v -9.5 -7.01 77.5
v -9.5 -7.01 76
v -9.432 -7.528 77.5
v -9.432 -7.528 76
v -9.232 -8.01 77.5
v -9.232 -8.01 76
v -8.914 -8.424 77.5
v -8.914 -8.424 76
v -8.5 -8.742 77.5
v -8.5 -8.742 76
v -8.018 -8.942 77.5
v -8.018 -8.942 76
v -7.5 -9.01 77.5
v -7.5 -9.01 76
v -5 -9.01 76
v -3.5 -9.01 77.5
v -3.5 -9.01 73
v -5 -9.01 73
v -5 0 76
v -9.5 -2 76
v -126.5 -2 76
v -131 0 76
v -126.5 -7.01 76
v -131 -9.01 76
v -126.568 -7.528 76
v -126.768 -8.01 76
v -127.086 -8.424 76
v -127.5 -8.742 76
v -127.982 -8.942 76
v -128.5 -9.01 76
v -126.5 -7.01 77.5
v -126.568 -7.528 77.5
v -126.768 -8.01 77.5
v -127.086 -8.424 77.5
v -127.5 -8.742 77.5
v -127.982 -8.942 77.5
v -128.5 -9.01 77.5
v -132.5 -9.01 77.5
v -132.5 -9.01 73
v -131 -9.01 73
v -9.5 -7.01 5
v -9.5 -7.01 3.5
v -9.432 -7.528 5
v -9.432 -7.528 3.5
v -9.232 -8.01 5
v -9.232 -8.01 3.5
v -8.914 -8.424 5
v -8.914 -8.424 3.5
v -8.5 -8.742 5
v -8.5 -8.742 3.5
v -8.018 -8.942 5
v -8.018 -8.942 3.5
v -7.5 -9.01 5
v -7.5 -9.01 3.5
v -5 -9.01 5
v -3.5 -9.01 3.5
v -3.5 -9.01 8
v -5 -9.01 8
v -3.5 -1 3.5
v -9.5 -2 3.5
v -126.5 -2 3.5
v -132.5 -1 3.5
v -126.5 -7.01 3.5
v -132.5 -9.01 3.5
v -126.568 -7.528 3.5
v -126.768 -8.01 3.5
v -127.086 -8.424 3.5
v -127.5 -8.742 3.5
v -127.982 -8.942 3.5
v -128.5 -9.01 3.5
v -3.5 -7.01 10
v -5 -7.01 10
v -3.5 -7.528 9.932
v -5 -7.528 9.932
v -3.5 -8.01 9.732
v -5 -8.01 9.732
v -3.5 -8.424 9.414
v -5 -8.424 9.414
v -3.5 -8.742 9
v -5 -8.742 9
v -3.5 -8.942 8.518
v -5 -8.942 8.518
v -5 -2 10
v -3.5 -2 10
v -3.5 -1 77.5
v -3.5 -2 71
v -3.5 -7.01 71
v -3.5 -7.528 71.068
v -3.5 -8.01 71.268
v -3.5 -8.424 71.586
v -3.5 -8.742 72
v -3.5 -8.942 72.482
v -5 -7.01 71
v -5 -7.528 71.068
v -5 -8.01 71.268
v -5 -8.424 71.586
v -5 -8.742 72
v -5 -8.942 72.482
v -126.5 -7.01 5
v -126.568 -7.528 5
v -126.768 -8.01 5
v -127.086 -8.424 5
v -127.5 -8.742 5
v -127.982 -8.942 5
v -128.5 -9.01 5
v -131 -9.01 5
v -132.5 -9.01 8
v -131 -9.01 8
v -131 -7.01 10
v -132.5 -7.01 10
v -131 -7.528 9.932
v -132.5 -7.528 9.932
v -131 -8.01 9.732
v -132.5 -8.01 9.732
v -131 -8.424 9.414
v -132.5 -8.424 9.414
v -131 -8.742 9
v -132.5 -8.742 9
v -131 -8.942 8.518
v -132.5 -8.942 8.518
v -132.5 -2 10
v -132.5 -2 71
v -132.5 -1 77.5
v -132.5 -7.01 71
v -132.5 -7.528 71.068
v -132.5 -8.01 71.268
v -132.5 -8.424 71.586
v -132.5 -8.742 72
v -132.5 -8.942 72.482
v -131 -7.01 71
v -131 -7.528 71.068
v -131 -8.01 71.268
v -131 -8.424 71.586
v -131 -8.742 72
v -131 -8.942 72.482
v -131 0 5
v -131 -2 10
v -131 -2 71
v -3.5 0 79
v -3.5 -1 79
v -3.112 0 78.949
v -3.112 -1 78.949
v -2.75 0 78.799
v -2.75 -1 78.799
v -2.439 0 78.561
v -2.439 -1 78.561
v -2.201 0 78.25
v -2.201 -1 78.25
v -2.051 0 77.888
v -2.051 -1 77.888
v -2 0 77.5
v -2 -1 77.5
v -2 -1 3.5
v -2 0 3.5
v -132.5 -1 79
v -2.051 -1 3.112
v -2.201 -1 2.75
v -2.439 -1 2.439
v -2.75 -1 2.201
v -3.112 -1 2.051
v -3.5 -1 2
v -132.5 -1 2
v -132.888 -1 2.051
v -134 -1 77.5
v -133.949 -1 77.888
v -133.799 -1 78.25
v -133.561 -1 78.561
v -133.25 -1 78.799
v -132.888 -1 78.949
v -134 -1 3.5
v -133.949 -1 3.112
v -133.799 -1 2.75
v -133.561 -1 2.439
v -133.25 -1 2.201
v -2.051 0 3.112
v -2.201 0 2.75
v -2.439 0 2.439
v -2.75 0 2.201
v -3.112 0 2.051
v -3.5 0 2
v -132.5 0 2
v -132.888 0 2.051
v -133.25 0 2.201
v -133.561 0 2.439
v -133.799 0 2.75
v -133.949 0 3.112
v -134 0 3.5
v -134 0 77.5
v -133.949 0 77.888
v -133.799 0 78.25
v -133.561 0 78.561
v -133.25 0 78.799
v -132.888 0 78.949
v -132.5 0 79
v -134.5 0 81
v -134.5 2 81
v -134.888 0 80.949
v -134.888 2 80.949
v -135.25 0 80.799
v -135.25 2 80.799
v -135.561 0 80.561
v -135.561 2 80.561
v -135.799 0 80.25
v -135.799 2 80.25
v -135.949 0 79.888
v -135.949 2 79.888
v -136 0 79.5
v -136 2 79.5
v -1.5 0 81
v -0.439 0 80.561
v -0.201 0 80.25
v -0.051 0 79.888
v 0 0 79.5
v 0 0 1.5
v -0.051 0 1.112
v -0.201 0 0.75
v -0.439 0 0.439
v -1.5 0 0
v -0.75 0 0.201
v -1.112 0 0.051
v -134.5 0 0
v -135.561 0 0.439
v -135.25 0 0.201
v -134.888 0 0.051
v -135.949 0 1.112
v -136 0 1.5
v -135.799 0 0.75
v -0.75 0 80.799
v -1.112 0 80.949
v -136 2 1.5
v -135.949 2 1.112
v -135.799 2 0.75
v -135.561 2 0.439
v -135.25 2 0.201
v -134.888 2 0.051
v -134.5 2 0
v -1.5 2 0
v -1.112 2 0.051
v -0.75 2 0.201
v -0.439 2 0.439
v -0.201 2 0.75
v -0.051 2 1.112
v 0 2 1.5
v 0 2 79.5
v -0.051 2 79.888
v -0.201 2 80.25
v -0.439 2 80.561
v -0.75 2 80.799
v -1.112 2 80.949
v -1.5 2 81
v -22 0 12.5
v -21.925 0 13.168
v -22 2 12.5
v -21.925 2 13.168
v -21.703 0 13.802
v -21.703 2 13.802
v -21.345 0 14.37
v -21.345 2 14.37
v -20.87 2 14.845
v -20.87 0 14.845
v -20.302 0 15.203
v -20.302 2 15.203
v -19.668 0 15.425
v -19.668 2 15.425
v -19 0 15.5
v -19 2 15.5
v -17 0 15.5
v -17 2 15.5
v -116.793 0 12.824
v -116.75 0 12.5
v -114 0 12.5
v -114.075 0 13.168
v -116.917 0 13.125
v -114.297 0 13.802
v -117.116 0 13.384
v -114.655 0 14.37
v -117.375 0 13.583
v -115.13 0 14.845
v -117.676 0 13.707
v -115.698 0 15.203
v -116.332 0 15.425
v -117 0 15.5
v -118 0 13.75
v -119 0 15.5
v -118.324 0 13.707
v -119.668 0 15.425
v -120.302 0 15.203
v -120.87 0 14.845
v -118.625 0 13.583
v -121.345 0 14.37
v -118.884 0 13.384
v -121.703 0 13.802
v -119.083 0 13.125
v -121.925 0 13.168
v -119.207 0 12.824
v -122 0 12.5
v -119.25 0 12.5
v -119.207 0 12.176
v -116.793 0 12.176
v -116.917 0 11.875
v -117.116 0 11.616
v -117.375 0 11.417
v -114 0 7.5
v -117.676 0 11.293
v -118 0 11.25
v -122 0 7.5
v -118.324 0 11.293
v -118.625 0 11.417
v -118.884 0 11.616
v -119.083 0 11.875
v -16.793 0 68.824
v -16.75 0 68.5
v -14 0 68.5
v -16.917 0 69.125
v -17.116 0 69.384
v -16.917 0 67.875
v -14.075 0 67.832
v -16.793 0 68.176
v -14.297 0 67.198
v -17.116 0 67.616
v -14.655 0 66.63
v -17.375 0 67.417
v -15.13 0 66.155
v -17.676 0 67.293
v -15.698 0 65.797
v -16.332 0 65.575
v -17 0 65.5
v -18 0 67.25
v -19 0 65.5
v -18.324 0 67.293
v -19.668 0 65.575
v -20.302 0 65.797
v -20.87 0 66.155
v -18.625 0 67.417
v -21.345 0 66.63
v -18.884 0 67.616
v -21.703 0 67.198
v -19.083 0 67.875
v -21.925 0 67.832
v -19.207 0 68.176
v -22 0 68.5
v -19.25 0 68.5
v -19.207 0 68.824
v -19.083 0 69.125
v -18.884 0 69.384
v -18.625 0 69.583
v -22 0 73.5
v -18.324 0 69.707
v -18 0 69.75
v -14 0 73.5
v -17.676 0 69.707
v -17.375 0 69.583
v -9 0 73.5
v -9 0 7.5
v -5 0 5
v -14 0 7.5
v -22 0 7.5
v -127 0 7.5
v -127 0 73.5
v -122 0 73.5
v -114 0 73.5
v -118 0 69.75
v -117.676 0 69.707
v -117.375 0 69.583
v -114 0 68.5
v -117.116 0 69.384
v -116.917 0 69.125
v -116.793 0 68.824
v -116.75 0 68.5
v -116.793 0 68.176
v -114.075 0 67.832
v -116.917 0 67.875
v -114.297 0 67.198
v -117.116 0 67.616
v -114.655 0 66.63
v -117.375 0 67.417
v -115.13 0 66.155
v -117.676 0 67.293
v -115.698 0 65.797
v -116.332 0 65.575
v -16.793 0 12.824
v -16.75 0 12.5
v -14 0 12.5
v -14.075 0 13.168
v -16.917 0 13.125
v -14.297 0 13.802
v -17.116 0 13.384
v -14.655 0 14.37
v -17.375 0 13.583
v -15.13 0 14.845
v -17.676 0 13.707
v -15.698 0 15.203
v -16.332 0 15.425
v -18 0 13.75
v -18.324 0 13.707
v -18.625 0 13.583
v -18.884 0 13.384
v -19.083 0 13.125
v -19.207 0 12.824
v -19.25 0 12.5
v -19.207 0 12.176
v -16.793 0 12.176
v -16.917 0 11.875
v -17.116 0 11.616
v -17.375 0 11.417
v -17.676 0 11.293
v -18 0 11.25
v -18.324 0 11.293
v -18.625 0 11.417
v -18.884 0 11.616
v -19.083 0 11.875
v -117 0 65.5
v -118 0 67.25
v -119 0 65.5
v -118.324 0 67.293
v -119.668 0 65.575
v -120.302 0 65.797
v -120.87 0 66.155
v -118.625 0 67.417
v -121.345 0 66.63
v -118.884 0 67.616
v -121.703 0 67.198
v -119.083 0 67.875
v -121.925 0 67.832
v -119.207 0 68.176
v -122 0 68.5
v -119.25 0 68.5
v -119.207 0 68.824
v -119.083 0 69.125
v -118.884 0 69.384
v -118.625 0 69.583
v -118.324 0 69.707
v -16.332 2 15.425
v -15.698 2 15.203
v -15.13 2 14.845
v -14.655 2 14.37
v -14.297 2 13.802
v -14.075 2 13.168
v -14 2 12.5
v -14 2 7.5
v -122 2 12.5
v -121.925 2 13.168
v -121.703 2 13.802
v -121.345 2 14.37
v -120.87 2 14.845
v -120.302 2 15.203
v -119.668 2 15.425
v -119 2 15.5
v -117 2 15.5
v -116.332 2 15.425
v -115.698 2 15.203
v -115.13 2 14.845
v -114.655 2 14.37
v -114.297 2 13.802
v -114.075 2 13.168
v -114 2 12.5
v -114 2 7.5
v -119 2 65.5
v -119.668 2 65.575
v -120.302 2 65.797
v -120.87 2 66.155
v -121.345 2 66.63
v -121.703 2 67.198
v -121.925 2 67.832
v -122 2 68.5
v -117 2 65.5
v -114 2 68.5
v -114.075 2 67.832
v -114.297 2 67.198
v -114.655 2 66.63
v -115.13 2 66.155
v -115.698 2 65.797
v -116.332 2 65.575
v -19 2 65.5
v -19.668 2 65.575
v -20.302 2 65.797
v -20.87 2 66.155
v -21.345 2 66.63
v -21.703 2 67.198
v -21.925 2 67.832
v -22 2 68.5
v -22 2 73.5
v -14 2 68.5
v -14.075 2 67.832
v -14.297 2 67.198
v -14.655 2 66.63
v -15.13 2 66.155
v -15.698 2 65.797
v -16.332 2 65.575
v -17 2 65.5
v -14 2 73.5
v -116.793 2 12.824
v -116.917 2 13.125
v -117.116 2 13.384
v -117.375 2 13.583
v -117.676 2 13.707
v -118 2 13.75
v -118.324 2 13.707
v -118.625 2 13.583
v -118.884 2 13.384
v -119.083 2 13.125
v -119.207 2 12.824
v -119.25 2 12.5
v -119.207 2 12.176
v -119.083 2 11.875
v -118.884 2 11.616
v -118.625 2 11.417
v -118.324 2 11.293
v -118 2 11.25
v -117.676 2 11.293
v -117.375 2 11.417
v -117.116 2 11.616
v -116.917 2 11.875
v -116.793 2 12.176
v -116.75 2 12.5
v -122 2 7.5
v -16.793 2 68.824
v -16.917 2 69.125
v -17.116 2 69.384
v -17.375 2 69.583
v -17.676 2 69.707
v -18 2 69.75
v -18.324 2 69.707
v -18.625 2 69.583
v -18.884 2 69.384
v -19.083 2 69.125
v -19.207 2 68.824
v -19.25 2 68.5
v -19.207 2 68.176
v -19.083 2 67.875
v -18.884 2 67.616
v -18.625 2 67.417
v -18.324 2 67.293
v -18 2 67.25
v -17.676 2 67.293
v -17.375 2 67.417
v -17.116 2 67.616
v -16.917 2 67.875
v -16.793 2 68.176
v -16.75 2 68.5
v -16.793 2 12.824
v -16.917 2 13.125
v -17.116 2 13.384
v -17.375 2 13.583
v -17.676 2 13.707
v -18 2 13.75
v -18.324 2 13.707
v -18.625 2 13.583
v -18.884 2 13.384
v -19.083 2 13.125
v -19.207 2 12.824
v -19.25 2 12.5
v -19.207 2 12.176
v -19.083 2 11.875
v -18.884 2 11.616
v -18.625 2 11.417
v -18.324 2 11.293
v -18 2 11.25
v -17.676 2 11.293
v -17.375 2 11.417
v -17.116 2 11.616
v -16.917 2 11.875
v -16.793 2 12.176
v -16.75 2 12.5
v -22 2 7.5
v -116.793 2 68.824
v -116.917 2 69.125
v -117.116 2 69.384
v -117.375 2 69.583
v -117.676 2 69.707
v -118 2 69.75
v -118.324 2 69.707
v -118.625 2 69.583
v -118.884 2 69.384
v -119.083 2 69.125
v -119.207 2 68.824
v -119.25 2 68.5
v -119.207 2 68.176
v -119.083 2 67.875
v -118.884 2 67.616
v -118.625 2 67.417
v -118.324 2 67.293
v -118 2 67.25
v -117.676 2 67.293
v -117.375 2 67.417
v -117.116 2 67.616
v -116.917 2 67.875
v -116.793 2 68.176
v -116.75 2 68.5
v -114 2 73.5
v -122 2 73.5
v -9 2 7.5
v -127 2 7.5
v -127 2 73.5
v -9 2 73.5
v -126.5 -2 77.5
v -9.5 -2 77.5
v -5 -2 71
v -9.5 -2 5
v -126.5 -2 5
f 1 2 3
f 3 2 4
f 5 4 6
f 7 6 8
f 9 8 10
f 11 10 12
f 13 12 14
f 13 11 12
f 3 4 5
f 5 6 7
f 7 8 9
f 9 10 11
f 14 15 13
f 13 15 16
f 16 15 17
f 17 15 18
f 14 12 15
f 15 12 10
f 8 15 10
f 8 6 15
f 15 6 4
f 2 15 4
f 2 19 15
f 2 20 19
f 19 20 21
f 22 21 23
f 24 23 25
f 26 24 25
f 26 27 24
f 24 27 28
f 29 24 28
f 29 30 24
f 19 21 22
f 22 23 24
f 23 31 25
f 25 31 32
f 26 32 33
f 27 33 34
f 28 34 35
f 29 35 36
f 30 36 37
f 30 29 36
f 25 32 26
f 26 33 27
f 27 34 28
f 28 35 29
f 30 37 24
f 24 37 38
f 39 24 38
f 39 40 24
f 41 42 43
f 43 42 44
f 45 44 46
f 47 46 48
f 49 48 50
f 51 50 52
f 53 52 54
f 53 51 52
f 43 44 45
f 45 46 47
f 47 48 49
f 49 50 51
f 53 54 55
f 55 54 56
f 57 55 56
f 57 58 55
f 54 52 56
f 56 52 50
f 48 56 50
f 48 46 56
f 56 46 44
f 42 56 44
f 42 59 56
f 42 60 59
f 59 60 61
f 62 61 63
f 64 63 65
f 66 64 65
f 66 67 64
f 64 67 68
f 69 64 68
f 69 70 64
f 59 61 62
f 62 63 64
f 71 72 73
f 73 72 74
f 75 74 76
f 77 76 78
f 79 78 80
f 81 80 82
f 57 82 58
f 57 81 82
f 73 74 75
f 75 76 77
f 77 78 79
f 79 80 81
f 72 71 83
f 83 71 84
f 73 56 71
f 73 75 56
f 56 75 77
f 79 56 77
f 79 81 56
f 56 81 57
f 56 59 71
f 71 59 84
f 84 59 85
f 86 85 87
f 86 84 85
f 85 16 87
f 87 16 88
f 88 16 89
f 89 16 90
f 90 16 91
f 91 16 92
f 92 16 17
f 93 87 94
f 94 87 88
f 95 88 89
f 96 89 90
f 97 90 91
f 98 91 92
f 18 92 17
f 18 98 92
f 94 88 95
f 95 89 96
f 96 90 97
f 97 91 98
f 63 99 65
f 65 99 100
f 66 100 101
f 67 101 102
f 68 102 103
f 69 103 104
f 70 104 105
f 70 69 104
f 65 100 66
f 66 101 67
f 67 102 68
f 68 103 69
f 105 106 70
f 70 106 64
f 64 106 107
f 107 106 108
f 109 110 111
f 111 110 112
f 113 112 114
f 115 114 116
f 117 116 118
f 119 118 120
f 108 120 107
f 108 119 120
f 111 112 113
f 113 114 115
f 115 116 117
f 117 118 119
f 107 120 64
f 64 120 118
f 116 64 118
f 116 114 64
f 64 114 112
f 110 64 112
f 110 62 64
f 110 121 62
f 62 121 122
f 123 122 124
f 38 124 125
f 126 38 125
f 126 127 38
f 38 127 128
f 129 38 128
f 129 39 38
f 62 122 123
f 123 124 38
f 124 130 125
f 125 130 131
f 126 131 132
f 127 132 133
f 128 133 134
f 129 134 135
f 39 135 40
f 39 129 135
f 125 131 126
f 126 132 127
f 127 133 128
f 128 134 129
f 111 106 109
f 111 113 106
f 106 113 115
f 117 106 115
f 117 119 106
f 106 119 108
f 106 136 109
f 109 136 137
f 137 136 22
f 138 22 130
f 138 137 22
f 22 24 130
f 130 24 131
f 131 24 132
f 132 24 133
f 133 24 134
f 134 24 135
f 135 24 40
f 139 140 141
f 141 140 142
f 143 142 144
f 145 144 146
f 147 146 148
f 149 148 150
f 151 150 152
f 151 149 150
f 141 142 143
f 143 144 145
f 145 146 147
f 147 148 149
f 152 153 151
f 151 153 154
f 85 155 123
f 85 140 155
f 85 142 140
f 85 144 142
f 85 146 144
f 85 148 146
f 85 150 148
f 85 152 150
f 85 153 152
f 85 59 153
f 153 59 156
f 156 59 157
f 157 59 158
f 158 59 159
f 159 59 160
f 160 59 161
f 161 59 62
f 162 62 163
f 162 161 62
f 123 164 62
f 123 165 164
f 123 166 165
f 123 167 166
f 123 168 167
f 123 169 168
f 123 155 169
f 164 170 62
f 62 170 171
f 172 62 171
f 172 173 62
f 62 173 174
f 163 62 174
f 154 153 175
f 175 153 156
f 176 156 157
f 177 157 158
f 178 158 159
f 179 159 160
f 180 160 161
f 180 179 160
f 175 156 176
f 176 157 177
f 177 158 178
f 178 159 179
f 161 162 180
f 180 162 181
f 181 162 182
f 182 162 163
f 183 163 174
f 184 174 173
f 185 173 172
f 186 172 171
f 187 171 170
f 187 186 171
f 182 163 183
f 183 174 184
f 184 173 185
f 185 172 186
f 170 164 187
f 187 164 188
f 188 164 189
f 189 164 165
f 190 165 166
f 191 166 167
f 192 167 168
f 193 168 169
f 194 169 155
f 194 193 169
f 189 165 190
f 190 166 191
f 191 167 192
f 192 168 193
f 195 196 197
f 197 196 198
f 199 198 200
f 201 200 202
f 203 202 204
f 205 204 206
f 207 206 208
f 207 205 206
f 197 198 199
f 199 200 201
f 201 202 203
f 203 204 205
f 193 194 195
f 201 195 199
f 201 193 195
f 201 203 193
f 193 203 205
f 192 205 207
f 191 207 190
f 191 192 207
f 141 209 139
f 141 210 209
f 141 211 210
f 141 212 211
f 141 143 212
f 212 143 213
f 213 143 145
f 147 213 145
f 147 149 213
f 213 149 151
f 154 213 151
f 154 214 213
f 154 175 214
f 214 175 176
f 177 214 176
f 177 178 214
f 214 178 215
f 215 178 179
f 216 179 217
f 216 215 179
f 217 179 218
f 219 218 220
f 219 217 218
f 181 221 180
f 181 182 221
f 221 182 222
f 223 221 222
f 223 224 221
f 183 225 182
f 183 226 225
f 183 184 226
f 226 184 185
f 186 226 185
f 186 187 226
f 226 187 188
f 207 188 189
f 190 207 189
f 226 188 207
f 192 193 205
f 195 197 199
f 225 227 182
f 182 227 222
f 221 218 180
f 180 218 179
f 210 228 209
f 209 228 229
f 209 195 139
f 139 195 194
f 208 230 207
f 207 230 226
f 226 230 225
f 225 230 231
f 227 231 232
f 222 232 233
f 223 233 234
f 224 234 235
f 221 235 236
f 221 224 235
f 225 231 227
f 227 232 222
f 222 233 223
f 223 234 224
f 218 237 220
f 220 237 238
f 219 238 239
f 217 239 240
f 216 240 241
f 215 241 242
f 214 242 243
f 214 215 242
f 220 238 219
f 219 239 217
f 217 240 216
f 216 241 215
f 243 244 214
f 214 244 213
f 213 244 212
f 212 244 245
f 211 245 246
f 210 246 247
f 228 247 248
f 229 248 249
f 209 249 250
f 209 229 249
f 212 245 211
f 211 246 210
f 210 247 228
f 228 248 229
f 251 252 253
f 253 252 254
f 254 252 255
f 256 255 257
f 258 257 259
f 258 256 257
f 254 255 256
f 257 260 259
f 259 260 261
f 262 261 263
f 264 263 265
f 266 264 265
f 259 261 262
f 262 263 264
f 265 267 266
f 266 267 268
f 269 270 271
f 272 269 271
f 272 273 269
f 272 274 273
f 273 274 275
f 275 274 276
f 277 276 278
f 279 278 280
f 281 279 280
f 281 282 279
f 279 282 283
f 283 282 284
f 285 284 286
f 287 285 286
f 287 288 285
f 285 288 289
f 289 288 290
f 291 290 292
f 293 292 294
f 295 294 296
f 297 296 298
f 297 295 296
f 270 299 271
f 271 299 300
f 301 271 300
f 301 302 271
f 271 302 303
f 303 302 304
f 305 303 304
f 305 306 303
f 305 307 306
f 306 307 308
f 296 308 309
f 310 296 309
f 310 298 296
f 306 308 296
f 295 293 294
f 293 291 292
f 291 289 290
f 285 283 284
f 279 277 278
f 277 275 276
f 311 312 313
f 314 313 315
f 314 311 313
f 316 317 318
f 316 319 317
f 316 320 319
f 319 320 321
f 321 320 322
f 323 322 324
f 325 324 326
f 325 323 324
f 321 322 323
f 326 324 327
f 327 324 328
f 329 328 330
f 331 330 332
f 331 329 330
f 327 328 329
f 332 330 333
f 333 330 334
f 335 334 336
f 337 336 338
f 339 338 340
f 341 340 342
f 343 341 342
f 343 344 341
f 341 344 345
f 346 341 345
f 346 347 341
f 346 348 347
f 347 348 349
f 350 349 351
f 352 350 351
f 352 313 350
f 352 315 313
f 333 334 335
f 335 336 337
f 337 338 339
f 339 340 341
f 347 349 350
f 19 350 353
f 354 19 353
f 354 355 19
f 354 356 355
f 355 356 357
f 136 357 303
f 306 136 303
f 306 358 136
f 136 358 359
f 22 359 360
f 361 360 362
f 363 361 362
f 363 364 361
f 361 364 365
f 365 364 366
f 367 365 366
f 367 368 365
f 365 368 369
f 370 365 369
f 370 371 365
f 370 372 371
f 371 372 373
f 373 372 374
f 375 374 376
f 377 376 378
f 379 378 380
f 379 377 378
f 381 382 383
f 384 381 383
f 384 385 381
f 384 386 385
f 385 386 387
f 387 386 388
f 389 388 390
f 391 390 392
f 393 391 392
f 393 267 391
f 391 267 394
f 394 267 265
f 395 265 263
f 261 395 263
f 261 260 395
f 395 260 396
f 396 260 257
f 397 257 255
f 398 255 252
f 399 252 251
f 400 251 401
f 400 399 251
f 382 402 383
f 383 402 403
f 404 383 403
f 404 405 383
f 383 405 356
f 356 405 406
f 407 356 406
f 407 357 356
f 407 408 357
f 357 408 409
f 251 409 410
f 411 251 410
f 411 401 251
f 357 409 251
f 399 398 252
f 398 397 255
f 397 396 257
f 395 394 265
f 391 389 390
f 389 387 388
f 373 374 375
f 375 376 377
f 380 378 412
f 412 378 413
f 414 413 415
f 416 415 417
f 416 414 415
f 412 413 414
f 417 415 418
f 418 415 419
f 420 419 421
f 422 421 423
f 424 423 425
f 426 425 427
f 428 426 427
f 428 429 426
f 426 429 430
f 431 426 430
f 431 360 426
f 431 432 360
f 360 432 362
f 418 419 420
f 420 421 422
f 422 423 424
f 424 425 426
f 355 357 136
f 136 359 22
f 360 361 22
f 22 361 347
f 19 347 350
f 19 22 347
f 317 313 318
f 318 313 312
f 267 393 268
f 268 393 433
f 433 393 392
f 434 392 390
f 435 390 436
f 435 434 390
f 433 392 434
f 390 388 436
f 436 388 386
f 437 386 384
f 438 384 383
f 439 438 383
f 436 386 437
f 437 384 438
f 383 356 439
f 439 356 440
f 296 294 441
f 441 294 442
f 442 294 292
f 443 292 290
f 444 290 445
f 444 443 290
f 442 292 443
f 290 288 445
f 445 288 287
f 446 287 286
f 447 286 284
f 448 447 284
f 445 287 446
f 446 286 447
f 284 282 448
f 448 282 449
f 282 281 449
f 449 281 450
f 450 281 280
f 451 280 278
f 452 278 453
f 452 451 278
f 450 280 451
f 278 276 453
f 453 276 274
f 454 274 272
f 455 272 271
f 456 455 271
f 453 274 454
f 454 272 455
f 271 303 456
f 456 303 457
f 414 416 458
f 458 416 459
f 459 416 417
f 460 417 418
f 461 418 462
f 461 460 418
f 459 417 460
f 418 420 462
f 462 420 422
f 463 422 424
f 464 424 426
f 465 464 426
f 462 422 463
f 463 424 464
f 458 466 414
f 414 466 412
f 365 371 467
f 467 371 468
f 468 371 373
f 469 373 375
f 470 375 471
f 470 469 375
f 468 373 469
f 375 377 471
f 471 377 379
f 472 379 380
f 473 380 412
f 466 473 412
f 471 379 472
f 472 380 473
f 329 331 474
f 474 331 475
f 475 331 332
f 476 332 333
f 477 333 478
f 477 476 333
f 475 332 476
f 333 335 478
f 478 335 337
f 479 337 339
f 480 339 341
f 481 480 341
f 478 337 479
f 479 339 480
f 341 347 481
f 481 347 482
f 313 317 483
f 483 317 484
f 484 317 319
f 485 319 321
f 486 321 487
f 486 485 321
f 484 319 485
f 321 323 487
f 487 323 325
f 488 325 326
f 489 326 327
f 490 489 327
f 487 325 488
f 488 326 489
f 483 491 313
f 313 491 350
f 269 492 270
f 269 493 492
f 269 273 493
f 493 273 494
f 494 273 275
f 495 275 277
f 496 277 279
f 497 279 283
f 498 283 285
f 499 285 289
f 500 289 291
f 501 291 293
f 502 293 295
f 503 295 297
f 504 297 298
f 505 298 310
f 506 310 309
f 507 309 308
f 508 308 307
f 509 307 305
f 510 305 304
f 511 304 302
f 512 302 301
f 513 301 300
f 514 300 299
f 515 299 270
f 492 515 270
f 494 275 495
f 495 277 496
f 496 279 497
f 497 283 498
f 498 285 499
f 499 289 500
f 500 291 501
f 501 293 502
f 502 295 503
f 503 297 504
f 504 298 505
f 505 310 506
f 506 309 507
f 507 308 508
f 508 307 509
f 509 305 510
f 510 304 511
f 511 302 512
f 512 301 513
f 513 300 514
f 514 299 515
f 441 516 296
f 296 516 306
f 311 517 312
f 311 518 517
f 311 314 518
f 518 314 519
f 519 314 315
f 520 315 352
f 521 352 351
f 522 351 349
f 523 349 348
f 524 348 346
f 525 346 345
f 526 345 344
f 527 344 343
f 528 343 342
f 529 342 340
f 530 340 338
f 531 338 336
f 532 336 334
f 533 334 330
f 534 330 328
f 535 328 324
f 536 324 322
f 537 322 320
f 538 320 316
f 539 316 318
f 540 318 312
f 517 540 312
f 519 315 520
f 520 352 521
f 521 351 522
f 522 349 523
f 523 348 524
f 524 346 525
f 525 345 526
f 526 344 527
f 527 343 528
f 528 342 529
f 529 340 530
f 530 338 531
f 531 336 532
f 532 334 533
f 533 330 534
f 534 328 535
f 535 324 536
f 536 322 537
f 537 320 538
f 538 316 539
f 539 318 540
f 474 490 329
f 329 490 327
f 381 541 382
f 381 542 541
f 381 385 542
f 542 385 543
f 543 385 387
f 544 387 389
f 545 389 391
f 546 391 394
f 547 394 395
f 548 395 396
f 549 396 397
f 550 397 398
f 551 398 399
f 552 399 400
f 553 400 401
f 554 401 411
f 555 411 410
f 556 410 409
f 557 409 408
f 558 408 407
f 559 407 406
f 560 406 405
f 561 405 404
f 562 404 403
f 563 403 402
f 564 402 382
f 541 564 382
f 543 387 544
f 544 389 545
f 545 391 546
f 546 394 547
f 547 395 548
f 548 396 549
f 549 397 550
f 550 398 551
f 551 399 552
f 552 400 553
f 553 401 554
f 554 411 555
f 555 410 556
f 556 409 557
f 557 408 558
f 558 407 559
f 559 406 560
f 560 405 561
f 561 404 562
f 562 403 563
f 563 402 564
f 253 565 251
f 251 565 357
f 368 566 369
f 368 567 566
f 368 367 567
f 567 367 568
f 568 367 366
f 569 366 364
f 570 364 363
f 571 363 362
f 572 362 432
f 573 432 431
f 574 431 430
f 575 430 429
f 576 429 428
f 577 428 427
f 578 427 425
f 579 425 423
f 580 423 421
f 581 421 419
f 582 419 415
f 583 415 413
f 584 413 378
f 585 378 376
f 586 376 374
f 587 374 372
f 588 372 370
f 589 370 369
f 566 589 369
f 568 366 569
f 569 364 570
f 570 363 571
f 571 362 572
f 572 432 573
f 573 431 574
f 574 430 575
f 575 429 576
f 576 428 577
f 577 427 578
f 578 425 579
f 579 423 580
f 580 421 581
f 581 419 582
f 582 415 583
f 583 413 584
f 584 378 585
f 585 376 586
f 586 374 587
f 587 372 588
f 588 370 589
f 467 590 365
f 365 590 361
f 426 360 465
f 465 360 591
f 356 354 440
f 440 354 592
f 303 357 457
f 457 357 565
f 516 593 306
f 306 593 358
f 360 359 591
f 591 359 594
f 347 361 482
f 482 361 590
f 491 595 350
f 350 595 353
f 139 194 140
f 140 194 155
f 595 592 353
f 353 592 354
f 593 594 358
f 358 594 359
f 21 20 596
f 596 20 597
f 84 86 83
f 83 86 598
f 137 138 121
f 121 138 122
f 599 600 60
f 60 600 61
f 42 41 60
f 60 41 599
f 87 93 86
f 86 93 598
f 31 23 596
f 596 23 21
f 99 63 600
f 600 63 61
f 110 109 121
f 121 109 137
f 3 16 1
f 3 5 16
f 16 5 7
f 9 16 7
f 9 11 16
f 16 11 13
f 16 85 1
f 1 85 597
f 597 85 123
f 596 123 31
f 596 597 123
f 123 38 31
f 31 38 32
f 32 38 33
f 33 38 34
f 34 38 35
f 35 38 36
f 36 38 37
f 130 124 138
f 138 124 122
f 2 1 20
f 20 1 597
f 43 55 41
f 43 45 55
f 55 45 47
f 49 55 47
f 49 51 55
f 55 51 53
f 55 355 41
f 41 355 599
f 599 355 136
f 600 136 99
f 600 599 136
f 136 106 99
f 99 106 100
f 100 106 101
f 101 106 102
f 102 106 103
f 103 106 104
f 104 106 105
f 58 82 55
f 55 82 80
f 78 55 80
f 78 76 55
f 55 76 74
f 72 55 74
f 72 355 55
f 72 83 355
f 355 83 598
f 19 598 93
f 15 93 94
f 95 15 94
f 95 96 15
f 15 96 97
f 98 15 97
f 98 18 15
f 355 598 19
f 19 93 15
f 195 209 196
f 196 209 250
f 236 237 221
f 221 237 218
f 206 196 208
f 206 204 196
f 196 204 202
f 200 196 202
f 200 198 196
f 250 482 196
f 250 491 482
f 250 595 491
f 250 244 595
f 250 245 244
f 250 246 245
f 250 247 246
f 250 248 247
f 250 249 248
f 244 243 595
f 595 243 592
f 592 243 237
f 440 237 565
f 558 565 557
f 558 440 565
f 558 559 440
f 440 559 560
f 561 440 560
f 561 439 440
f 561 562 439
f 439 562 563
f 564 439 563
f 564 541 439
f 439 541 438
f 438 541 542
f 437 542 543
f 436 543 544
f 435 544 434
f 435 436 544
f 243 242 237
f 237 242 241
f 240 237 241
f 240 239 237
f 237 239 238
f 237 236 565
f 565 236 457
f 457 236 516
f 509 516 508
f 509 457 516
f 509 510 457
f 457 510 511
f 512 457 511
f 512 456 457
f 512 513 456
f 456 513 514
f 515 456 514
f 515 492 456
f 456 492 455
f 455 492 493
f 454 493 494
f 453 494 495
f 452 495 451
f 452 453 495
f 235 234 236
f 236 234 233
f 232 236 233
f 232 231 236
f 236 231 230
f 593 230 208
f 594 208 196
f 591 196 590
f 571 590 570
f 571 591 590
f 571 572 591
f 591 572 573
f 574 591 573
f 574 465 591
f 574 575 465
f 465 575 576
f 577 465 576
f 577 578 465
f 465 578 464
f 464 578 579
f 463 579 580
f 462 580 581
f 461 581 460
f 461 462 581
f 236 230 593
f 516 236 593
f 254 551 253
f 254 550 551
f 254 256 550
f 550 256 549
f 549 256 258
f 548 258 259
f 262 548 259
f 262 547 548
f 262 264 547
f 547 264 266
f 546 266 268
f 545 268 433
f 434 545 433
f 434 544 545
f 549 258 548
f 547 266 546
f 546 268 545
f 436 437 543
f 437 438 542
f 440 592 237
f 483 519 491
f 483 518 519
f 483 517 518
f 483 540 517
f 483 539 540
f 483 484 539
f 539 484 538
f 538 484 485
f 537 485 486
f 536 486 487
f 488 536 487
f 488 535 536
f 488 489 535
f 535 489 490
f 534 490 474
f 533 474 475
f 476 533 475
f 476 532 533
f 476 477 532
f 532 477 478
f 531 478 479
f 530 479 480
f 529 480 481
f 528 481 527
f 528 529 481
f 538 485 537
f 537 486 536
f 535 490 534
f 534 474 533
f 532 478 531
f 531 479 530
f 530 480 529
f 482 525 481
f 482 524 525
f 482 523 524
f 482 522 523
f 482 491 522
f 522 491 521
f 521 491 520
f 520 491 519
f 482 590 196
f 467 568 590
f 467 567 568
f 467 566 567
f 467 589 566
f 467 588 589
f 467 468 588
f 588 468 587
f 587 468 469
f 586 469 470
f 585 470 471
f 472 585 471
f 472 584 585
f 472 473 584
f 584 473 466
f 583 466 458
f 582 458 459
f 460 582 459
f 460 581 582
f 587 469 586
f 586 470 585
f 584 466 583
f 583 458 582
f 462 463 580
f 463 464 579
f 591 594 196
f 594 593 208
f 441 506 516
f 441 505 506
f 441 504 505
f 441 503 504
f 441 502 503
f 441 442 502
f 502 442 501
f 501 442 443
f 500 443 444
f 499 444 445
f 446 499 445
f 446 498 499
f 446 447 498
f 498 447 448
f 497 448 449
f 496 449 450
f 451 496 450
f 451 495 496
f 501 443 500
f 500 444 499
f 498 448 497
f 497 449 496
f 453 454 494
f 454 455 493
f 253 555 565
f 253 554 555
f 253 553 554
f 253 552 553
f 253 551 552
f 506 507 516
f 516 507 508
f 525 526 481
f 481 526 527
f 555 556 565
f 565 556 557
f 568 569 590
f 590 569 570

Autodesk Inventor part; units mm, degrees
ref_plane "YZ Plane" through (0, 0, 0) normal (1, 0, 0) x (0, 1, 0)
ref_plane "XZ Plane" through (0, 0, 0) normal (0, 1, 0) x (-1, 0, 0)
ref_plane "XY Plane" through (0, 0, 0) normal (0, 0, 1) x (1, 0, 0)
sketch "スケッチ2" plane through (0, 0, 0) normal (0, 1, 0) x (-1, 0, 0)
  line L0 (0, 0) -> (136, 0)
  line L1 (136, 0) -> (136, 81)
  line L2 (136, 81) -> (0, 81)
  line L3 (0, 81) -> (0, 0)
  dimension "d2" = 81
  dimension "d3" = 136
extrude "押し出し1" add sketch "スケッチ2" along normal blind 2
sketch "スケッチ3" plane through (0, 0, 0) normal (0, 1, 0) x (-1, 0, 0)
  line L0 (5, 5) -> (131, 5)
  line L1 (131, 5) -> (131, 76)
  line L2 (131, 76) -> (5, 76)
  line L3 (5, 76) -> (5, 5)
  line L4 (136, 0) -> (136, 81) projected
  line L5 (136, 81) -> (0, 81) projected
  line L6 (132.5, 77.5) -> (126.5, 77.5)
  line L7 (126.5, 77.5) -> (126.5, 76)
  line L8 (126.5, 76) -> (132.5, 76)
  line L9 (132.5, 76) -> (132.5, 77.5)
  line L10 (131, 76) -> (132.5, 76)
  line L11 (132.5, 76) -> (132.5, 71)
  line L12 (132.5, 71) -> (131, 71)
  line L13 (131, 71) -> (131, 76)
  line L14 (131, 5) -> (132.5, 5)
  line L15 (132.5, 5) -> (132.5, 10)
  line L16 (132.5, 10) -> (131, 10)
  line L17 (131, 10) -> (131, 5)
  line L18 (132.5, 5) -> (126.5, 5)
  line L19 (126.5, 5) -> (126.5, 3.5)
  line L20 (126.5, 3.5) -> (132.5, 3.5)
  line L21 (132.5, 3.5) -> (132.5, 5)
  line L22 (5, 76) -> (3.5, 76)
  line L23 (3.5, 76) -> (3.5, 71)
  line L24 (3.5, 71) -> (5, 71)
  line L25 (5, 71) -> (5, 76)
  line L26 (3.5, 76) -> (9.5, 76)
  line L27 (9.5, 76) -> (9.5, 77.5)
  line L28 (9.5, 77.5) -> (3.5, 77.5)
  line L29 (3.5, 77.5) -> (3.5, 76)
  line L30 (5, 5) -> (3.5, 5)
  line L31 (3.5, 5) -> (3.5, 10)
  line L32 (3.5, 10) -> (5, 10)
  line L33 (5, 10) -> (5, 5)
  line L34 (3.5, 5) -> (9.5, 5)
  line L35 (9.5, 5) -> (9.5, 3.5)
  line L36 (9.5, 3.5) -> (3.5, 3.5)
  line L37 (3.5, 3.5) -> (3.5, 5)
  point P0 (0, 0)
  dimension "d6" = 126
  dimension "d7" = 71
  dimension "d8" = 5
  dimension "d9" = 5
  dimension "d10" = 1.5
  dimension "d11" = 1.5
  dimension "d12" = 5
  dimension "d13" = 6
  dimension "d14" = 0
  dimension "d17" = 1.5
  dimension "d18" = 1.5
  dimension "d19" = 6
  dimension "d20" = 5
  dimension "d21" = 5
  dimension "d22" = 1.5
  dimension "d23" = 1.5
  dimension "d24" = 6
  dimension "d25" = 6
  dimension "d26" = 1.5
  dimension "d27" = 1.5
  dimension "d28" = 5
extrude "押し出し2" add sketch "スケッチ3" against normal blind 9.01 contours L30 L31 L32 L3 | L0 L35 L36 L37 L30 | L0 L14 L21 L20 L19 | L24 L23 L22 L3 | L1 L16 L15 L14 | L22 L29 L28 L27 L2 | L1 L8 L11 L12 | L7 L6 L9 L8 L2
sketch "スケッチ5" plane through (0, 0, 0) normal (0, 1, 0) x (-1, 0, 0)
  line L0 (131, 76) -> (5, 76)
  line L1 (5, 76) -> (5, 5)
  line L2 (5, 5) -> (131, 5)
  line L3 (131, 5) -> (131, 76)
  line L4 (0, 81) -> (0, 0) projected
  line L5 (131, 76) -> (5, 76)
  line L6 (5, 76) -> (5, 77.5)
  line L7 (5, 77.5) -> (131, 77.5)
  line L8 (131, 77.5) -> (131, 76)
  line L9 (131, 5) -> (5, 5)
  line L10 (5, 5) -> (5, 3.5)
  line L11 (5, 3.5) -> (131, 3.5)
  line L12 (131, 3.5) -> (131, 5)
  line L13 (131, 77.5) -> (132.5, 77.5)
  line L14 (132.5, 77.5) -> (132.5, 3.5)
  line L15 (132.5, 3.5) -> (131, 3.5)
  line L16 (131, 3.5) -> (131, 77.5)
  line L17 (5, 77.5) -> (3.5, 77.5)
  line L18 (3.5, 77.5) -> (3.5, 3.5)
  line L19 (3.5, 3.5) -> (5, 3.5)
  line L20 (5, 3.5) -> (5, 77.5)
  dimension "d34" = 126
  dimension "d35" = 71
  dimension "d36" = 5
  dimension "d37" = 5
  dimension "d38" = 1.5
  dimension "d39" = 1.5
  dimension "d40" = 1.5
  dimension "d41" = 1.5
  dimension "d42" = 1.5
  dimension "d43" = 1.5
extrude "押し出し4" add sketch "スケッチ5" against normal blind 2 contours L8 L13 L14 L15 L12 L3 | L0 L6 L7 L8 | L1 L10 L19 L18 L17 L6 | L12 L11 L10 L2
sketch "スケッチ7" plane through (0, 0, 0) normal (0, 1, 0) x (-1, 0, 0)
  line L0 (9, 73.5) -> (127, 73.5)
  line L1 (127, 73.5) -> (127, 7.5)
  line L2 (127, 7.5) -> (9, 7.5)
  line L3 (9, 7.5) -> (9, 73.5)
  line L4 (136, 0) -> (136, 81) projected
  line L5 (136, 81) -> (0, 81) projected
  point P0 (0, 0)
  dimension "d50" = 66
  dimension "d51" = 118
  dimension "d52" = 9
  dimension "d53" = 7.5
extrude "押し出し6" cut sketch "スケッチ7" along normal up to next
sketch "スケッチ9" plane through (-132.5, 0, 77.5) normal (0, 0, 1) x (1, 0, 0)
  line L0 (129, 0) -> (129, -9.01) projected
  line L1 (0, 0) -> (129, 0) projected
  line L2 (0, 0) -> (129, 0)
  line L3 (129, 0) -> (129, -1)
  line L4 (129, -1) -> (0, -1)
  line L5 (0, -1) -> (0, 0)
  point P0 (132.5, 0)
  dimension "d62" = 1
extrude "押し出し8" add sketch "スケッチ9" along normal blind 1.5
sketch "スケッチ10" plane through (-3.5, 0, 3.5) normal (0, 0, -1) x (-1, 0, 0)
  line L0 (129, 0) -> (129, -9.01) projected
  line L1 (0, 0) -> (129, 0)
  line L2 (129, 0) -> (129, -1)
  line L3 (129, -1) -> (0, -1)
  line L4 (0, -1) -> (0, 0)
  point P0 (-3.5, 0)
  dimension "d65" = 1
extrude "押し出し9" add sketch "スケッチ10" along normal blind 1.5
sketch "スケッチ11" plane through (-3.5, -9.01, 10) normal (1, 0, 0) x (0, 0, -1)
  line L0 (-69, 9.01) -> (8, 9.01)
  line L1 (8, 9.01) -> (8, 8.01)
  line L2 (8, 8.01) -> (-69, 8.01)
  line L3 (-69, 8.01) -> (-69, 9.01)
  point P0 (10, 9.01)
extrude "押し出し10" add sketch "スケッチ11" along normal blind 1.5
sketch "スケッチ12" plane through (-132.5, -9.01, 3.5) normal (-1, 0, 0) x (0, 0, 1)
  line L0 (-1.5, 9.01) -> (75.5, 9.01)
  line L1 (75.5, 9.01) -> (75.5, 8.01)
  line L2 (75.5, 8.01) -> (-1.5, 8.01)
  line L3 (-1.5, 8.01) -> (-1.5, 9.01)
  point P0 (-3.5, 9.01)
extrude "押し出し11" add sketch "スケッチ12" along normal blind 1.5
sketch "スケッチ13" plane through (0, 2, 0) normal (0, 1, 0) x (1, 0, 0)
  line L0 (-127, -7.5) -> (-9, -7.5) projected
  line L1 (-9, -7.5) -> (-9, -73.5) projected
  line L2 (-9, -73.5) -> (-127, -73.5) projected
  line L3 (-9, -73.5) -> (-127, -73.5) projected
  line L4 (-127, -73.5) -> (-127, -7.5) projected
  line L5 (-127, -7.5) -> (-9, -7.5) projected
  line L6 (-122, -7.5) -> (-114, -7.5)
  line L7 (-114, -7.5) -> (-114, -15.5)
  line L8 (-114, -15.5) -> (-122, -15.5)
  line L9 (-122, -15.5) -> (-122, -7.5)
  line L10 (-122, -73.5) -> (-114, -73.5)
  line L11 (-114, -73.5) -> (-114, -65.5)
  line L12 (-114, -65.5) -> (-122, -65.5)
  line L13 (-122, -65.5) -> (-122, -73.5)
  line L14 (-14, -7.5) -> (-22, -7.5)
  line L15 (-22, -7.5) -> (-22, -15.5)
  line L16 (-22, -15.5) -> (-14, -15.5)
  line L17 (-14, -15.5) -> (-14, -7.5)
  line L18 (-14, -73.5) -> (-22, -73.5)
  line L19 (-22, -73.5) -> (-22, -65.5)
  line L20 (-22, -65.5) -> (-14, -65.5)
  line L21 (-14, -65.5) -> (-14, -73.5)
  circle A0 centre (-118, -12.5) radius 1.25
  circle A1 centre (-118, -68.5) radius 1.25
  circle A2 centre (-18, -12.5) radius 1.25
  circle A3 centre (-18, -68.5) radius 1.25
  point P0 (-44.5213, -7.5)
  point P1 (-44.5213, -73.5)
  point P2 (-91.4787, -7.5)
  point P3 (-91.4787, -73.5)
  dimension "d72" = 8
  dimension "d73" = 8
  dimension "d74" = 8
  dimension "d75" = 8
  dimension "d76" = 8
  dimension "d77" = 8
  dimension "d78" = 8
  dimension "d79" = 8
  dimension "d80" = 5
  dimension "d81" = 5
  dimension "d82" = 5
  dimension "d83" = 5
  dimension "d84" = 2.5
  dimension "d85" = 2.5
  dimension "d86" = 2.5
  dimension "d87" = 2.5
  dimension "d88" = 4
  dimension "d89" = 3
  dimension "d90" = 3
  dimension "d91" = 4
  dimension "d92" = 4
  dimension "d93" = 5
  dimension "d94" = 4
  dimension "d95" = 5
extrude "押し出し12" add sketch "スケッチ13" against normal blind 2 contours L0 L7 L8 L9 | L13 L12 L11 L2 | L0 L17 L16 L15 | L19 L20 L21 L2
fillet "フィレット1" radius 3 8 edges at (-14, 1, 65.5) (-22, 1, 65.5) (-114, 1, 65.5) (-122, 1, 65.5) (-114, 1, 15.5) (-122, 1, 15.5) (-14, 1, 15.5) (-22, 1, 15.5)
fillet "フィレット2" radius 1.5 8 edges at (0, 1, 81) (0, 1, 0) (-136, 1, 0) (-136, 1, 81) (-134, -0.5, 79) (-134, -0.5, 2) (-2, -0.5, 2) (-2, -0.5, 79)
sketch "スケッチ15" plane through (0, -2, 0) normal (0, -1, 0) x (1, 0, 0)
  line L0 (-101.5, 77.5) -> (-101.5, 76) projected
  line L1 (-126.5, 76) -> (-9.5, 76) projected
  line L2 (-9.5, 77.5) -> (-126.5, 77.5) projected
  line L3 (-93, 77.5) -> (-43, 77.5)
  line L4 (-43, 77.5) -> (-43, 76)
  line L5 (-43, 76) -> (-93, 76)
  line L6 (-93, 76) -> (-93, 77.5)
  point P0 (-34.5, 76)
  point P1 (-34.5, 77.5)
  point P2 (0, 0)
  dimension "d107" = 50
  dimension "d108" = 8.5
extrude "押し出し14" [suppressed]
fillet "フィレット4" radius 2 8 edges at (-131.75, -9.01, 71) (-131.75, -9.01, 10) (-126.5, -9.01, 4.25) (-4.25, -9.01, 71) (-4.25, -9.01, 10) (-9.5, -9.01, 4.25) (-126.5, -9.01, 76.75) (-9.5, -9.01, 76.75)
equation "\"d52\" = 0.5 * d3 - 0.5 * d51"
equation "\"d53\" = 0.5 * d2 - 0.5 * d50"
properties part number "lower"
